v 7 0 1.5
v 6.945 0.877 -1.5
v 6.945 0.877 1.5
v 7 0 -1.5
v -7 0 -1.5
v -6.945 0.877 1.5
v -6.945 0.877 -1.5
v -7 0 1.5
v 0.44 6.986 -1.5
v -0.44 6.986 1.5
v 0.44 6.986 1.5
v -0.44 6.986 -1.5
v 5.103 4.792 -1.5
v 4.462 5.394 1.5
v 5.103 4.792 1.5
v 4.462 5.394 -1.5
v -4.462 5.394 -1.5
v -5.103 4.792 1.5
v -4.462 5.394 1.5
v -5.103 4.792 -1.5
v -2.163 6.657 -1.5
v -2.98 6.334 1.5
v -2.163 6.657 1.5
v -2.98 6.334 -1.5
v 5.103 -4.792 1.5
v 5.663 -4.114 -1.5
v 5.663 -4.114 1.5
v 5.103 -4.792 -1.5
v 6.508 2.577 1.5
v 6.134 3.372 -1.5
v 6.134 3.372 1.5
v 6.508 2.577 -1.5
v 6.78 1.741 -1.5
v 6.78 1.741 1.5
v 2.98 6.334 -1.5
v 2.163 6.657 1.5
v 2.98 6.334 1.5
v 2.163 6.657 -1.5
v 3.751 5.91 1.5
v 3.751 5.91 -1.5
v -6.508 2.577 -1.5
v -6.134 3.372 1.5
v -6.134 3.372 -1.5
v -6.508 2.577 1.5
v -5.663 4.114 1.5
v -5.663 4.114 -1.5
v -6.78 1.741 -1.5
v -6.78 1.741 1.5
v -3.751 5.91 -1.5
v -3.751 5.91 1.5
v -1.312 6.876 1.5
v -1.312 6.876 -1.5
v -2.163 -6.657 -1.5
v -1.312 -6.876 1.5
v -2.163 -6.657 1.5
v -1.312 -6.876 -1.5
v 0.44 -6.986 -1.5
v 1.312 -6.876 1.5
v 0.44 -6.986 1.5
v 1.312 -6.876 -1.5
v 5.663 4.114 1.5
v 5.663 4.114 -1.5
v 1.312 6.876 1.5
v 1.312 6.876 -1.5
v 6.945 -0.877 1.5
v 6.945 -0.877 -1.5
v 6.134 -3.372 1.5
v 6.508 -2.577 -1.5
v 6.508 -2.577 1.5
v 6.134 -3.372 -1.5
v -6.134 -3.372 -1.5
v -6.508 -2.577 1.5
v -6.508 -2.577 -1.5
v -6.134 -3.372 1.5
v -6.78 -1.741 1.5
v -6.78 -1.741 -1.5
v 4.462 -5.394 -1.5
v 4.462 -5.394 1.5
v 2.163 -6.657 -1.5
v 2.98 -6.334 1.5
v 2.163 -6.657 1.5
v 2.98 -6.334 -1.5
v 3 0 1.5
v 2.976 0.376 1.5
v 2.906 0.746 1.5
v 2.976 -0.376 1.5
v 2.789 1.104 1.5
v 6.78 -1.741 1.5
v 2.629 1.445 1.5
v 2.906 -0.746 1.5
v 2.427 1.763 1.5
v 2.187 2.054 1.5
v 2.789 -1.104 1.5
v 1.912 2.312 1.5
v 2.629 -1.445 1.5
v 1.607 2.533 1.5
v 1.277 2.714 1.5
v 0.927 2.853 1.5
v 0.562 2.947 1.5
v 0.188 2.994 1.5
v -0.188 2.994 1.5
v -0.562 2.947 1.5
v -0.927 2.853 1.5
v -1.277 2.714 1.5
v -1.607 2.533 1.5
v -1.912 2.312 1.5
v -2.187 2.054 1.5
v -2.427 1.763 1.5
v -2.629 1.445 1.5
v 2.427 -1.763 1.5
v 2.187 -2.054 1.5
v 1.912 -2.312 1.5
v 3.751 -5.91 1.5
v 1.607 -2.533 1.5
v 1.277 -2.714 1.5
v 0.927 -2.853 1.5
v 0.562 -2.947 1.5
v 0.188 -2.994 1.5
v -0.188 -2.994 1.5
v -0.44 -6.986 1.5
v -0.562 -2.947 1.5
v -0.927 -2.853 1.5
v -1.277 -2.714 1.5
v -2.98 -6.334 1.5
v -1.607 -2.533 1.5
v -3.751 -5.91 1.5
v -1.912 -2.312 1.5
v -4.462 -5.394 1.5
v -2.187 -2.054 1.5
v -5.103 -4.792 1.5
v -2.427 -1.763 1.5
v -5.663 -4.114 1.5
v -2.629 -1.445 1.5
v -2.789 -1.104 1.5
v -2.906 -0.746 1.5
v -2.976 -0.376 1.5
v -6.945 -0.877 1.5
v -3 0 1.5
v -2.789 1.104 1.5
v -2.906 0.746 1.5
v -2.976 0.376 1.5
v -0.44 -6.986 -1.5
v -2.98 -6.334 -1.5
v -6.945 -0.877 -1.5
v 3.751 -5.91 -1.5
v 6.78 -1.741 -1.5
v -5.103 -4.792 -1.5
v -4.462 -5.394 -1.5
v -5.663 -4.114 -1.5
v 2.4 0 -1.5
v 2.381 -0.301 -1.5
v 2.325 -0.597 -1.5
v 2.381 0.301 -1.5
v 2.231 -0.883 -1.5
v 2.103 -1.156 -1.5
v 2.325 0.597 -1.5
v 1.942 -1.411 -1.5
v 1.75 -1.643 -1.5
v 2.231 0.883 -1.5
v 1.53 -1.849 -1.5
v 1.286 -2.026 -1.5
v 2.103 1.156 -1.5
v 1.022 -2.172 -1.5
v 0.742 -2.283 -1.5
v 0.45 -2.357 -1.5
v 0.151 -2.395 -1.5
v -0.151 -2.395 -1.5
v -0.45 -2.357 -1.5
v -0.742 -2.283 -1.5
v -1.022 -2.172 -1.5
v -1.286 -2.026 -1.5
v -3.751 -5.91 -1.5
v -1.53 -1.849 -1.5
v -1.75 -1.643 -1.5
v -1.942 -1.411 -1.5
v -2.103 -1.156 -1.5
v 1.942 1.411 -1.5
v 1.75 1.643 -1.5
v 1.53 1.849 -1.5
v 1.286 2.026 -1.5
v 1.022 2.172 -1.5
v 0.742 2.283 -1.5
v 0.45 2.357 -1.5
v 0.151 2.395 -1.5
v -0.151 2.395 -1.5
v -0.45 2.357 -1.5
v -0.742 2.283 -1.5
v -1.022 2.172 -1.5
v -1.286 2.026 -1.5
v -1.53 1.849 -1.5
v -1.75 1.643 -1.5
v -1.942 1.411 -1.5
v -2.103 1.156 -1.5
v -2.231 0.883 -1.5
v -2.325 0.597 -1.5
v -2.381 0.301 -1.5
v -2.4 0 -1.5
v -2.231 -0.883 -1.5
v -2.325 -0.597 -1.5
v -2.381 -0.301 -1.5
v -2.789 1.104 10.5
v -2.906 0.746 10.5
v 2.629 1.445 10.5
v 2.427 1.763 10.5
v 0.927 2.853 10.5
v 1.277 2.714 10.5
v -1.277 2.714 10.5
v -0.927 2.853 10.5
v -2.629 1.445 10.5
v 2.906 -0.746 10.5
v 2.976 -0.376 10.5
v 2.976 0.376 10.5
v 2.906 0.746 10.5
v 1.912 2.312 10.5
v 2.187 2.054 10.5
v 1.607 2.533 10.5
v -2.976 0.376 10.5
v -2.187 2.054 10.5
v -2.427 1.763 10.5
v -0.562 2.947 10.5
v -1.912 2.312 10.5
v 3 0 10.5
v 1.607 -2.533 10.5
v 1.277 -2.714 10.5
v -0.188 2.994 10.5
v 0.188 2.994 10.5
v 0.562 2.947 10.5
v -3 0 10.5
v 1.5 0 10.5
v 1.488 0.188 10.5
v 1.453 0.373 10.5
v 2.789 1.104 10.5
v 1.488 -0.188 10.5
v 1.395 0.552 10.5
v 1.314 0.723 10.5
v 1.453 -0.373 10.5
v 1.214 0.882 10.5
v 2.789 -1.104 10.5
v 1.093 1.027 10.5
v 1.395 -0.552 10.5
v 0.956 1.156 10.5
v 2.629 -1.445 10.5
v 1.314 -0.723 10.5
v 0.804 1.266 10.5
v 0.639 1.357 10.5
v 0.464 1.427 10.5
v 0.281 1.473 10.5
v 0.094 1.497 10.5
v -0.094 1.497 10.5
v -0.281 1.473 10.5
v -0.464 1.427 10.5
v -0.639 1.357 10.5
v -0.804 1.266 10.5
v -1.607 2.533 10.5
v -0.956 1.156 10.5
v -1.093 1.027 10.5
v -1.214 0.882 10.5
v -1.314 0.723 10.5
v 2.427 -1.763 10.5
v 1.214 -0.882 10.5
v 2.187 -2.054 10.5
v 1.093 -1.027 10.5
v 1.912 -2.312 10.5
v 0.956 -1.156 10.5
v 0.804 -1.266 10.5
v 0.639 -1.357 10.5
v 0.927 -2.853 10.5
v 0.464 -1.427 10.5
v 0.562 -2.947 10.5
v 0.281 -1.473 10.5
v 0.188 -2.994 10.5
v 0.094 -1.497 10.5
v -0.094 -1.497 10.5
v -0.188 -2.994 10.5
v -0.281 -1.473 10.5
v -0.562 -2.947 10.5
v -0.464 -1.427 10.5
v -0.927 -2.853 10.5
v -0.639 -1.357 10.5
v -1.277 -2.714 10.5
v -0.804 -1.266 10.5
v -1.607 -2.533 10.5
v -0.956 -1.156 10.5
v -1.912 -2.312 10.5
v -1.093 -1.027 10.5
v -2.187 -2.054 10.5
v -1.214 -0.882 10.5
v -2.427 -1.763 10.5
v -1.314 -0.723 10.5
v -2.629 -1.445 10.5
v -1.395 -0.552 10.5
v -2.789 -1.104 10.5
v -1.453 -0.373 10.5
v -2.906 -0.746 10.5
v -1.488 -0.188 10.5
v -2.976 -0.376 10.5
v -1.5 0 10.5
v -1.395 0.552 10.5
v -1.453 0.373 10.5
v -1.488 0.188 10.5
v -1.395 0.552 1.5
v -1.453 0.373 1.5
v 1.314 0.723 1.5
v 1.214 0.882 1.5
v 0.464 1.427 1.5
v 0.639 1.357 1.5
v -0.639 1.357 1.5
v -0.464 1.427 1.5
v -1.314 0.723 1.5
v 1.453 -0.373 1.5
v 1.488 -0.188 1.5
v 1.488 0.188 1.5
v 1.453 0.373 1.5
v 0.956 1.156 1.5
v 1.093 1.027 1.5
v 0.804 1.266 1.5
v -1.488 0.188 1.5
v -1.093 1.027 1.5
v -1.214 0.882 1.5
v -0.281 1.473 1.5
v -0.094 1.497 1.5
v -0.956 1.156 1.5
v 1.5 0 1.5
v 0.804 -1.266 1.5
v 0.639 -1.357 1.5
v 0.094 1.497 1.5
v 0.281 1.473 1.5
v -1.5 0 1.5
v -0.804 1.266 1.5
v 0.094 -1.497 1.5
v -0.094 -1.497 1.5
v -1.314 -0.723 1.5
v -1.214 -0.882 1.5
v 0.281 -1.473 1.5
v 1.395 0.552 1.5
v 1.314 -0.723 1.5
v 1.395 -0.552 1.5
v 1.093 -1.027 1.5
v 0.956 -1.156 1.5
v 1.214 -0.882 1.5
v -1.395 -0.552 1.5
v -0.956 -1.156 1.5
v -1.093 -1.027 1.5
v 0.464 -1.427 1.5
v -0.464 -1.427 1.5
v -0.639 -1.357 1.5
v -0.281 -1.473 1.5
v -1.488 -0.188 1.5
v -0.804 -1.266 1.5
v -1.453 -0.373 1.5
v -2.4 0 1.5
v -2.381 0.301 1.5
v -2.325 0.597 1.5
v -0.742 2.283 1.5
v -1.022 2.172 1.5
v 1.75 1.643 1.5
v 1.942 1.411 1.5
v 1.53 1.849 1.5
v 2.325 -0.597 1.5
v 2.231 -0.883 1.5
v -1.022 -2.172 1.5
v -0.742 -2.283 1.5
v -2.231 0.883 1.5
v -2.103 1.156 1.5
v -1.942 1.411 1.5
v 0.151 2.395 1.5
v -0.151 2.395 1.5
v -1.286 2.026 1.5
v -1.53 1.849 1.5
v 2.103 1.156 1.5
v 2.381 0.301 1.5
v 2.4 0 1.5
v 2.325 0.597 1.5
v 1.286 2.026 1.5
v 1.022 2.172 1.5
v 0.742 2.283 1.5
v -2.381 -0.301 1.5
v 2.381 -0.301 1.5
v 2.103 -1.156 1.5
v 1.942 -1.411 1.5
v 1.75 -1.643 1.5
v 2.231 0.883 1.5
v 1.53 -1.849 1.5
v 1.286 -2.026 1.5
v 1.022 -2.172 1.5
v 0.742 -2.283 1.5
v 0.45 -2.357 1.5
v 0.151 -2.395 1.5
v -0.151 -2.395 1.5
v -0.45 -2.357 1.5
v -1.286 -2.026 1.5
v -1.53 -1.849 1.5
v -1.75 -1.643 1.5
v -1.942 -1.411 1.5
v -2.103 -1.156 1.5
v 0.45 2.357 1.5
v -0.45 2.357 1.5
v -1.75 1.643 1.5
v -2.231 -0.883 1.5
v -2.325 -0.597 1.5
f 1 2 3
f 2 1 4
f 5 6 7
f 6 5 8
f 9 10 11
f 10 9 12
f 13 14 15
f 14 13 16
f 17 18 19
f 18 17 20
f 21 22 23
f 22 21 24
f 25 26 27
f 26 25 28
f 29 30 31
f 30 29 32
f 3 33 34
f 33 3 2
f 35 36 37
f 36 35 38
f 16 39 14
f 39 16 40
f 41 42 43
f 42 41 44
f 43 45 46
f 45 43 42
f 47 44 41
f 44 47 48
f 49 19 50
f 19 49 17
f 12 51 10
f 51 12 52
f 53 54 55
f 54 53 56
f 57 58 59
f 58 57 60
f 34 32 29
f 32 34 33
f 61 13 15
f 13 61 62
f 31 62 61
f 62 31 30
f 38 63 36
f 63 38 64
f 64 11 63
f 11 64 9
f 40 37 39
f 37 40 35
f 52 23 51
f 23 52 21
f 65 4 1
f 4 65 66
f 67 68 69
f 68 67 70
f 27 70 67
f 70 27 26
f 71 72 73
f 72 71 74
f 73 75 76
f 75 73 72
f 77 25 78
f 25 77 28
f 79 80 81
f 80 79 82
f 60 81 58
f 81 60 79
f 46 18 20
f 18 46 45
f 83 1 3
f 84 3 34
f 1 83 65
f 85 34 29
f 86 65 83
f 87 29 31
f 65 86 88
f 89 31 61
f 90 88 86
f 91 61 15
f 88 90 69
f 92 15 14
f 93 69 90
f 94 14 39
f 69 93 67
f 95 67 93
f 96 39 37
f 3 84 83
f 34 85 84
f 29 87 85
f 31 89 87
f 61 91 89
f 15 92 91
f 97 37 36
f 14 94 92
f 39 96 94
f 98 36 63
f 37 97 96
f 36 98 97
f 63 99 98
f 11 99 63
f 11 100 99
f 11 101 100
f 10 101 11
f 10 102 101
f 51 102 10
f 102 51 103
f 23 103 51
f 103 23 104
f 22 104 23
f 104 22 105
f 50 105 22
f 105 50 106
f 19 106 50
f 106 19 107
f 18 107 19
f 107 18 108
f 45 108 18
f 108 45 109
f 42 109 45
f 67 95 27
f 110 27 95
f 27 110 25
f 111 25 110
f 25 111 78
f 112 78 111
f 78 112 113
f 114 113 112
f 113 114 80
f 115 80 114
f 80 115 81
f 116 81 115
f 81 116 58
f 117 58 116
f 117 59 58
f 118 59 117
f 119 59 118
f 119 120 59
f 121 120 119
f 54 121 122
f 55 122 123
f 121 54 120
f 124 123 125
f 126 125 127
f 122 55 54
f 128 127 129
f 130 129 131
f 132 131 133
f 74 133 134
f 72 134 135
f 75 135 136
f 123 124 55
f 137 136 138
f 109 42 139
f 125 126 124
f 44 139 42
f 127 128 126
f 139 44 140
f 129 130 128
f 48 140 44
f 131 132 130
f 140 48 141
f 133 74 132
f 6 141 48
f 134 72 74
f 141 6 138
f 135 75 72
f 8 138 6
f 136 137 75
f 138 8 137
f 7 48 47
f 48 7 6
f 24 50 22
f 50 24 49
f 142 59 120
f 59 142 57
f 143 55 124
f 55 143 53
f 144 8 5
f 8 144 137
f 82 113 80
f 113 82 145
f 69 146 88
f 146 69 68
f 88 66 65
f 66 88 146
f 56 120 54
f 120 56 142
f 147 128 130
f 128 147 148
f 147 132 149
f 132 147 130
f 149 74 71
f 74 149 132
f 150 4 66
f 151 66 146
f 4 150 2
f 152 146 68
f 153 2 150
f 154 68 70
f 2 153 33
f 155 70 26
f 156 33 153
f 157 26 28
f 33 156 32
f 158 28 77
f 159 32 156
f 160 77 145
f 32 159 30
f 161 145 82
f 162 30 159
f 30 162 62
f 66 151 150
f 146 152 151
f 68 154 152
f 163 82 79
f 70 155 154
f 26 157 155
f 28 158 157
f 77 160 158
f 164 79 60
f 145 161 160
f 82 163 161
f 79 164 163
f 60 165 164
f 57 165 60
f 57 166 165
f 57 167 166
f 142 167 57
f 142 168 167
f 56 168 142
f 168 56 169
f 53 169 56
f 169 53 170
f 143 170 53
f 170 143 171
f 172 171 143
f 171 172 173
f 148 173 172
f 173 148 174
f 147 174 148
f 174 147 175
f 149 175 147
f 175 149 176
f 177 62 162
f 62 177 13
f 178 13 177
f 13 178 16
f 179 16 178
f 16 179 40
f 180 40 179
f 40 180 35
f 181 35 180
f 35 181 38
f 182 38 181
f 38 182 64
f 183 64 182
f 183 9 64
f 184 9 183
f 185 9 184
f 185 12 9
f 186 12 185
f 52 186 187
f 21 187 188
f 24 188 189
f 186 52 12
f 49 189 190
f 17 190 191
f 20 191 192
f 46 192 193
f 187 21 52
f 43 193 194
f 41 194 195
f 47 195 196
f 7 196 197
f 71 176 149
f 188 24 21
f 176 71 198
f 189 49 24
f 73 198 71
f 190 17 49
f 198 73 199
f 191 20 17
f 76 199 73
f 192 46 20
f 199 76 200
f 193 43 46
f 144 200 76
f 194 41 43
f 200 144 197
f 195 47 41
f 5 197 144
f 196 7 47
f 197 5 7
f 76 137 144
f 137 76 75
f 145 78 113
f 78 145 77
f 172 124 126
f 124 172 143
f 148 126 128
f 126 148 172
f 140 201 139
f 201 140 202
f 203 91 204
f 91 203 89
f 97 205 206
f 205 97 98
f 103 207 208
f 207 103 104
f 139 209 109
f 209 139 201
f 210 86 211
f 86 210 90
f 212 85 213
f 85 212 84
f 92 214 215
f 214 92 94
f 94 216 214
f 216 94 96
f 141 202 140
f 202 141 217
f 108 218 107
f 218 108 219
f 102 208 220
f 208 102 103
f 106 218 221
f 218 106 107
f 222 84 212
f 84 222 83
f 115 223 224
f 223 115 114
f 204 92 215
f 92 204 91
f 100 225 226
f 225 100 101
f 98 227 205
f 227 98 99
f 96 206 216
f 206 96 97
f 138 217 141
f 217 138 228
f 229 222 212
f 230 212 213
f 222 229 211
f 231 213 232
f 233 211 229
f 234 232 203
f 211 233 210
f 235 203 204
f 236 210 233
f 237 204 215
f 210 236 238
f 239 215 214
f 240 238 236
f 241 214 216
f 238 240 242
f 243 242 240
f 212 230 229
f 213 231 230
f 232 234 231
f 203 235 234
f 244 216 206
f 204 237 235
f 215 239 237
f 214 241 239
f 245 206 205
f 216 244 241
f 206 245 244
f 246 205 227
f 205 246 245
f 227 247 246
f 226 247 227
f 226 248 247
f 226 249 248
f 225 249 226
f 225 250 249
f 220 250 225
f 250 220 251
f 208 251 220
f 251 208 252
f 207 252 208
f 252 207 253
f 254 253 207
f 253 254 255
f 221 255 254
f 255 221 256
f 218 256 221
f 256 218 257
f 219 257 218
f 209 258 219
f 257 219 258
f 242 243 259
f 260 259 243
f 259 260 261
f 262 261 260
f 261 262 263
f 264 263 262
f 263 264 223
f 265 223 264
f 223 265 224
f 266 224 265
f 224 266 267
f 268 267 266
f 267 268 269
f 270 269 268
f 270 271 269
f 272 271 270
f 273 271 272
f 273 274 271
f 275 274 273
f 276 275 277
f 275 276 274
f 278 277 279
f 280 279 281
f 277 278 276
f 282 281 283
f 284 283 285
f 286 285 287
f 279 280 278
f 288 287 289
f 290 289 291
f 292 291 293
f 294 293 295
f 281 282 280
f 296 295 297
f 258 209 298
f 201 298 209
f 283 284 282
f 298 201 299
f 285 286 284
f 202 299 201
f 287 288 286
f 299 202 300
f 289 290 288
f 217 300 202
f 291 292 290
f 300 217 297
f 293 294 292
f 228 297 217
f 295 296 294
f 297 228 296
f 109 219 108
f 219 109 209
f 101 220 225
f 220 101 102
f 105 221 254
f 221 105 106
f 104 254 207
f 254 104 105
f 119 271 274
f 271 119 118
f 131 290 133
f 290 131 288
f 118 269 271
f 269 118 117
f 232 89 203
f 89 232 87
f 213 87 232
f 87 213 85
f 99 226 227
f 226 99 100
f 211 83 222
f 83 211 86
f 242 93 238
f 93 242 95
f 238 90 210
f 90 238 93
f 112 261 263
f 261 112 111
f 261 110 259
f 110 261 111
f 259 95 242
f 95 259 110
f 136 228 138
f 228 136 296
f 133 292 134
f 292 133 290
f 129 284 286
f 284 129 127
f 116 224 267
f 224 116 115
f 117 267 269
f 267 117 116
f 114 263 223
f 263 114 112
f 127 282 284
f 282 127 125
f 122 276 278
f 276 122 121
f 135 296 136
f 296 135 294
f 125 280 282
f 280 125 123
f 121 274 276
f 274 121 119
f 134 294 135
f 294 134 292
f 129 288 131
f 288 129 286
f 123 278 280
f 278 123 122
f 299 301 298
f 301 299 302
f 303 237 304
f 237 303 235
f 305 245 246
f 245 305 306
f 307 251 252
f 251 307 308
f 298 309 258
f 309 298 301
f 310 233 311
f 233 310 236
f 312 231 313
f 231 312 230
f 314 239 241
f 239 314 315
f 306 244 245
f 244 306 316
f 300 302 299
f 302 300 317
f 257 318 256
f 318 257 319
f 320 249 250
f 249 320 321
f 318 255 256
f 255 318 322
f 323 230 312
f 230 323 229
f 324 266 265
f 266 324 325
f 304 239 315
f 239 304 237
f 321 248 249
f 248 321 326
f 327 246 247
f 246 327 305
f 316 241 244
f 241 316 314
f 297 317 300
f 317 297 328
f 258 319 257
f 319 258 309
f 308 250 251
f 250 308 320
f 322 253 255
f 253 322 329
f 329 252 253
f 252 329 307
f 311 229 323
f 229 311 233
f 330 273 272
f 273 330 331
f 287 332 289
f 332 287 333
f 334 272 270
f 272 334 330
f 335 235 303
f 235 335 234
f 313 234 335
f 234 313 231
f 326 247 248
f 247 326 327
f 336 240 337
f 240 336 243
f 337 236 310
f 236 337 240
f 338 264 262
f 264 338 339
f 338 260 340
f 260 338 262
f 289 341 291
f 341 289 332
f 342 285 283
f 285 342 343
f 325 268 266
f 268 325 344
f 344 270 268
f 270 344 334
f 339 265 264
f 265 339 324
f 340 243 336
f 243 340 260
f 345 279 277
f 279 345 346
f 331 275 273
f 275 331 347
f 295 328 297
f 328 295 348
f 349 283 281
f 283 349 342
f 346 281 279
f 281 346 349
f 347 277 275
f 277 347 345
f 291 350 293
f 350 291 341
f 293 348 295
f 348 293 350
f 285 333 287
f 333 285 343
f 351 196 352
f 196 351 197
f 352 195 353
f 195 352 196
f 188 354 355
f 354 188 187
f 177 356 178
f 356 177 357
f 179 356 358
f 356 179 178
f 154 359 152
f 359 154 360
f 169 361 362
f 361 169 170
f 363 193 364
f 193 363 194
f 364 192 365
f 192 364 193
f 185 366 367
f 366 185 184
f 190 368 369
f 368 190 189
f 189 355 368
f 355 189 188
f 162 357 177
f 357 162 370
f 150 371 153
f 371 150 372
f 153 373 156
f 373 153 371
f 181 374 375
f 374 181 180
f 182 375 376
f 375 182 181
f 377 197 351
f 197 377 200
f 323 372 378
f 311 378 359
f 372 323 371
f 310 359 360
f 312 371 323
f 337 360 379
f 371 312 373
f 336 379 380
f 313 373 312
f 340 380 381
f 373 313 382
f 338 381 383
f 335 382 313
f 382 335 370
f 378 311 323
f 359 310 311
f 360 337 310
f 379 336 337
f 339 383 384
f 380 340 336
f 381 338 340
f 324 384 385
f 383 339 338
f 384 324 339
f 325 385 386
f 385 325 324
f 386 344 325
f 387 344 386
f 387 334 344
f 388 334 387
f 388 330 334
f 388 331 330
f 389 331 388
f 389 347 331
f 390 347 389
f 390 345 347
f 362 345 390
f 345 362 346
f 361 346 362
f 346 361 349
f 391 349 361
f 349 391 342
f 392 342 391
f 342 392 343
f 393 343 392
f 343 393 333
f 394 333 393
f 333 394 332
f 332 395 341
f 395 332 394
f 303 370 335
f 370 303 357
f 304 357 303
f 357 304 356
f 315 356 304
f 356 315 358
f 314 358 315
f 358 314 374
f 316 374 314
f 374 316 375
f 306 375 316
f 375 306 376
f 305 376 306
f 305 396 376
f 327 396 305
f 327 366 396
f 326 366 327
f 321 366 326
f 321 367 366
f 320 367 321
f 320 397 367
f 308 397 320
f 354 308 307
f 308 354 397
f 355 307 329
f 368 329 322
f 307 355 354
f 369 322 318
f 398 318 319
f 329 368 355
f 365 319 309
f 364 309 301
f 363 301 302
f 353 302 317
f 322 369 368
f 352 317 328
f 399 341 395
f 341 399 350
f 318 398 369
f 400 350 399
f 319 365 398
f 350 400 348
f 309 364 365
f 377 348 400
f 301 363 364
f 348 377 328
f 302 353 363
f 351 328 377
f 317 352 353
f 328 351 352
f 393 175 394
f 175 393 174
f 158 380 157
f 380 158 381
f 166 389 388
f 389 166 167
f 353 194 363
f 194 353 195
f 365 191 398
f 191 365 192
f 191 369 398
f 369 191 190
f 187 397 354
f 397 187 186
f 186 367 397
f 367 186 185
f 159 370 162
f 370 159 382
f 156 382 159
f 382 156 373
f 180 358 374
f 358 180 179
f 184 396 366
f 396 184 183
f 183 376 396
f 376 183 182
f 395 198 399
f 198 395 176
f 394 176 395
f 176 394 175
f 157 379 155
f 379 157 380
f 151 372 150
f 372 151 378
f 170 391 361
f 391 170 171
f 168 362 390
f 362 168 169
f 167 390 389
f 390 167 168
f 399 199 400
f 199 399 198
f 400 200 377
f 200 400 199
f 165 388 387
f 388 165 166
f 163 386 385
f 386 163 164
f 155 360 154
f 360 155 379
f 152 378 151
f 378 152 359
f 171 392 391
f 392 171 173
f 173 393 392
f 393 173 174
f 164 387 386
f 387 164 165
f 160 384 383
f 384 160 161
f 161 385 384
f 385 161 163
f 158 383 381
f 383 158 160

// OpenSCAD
$fn = 50;


difference() {
	union() {
		translate(v = [0, 0, -1.5000000000]) {
			rotate(a = [0, 0, 0]) {
				cylinder(h = 3, r = 7.0000000000);
			}
		}
		translate(v = [0, 0, -1.5000000000]) {
			rotate(a = [0, 0, 0]) {
				cylinder(h = 12, r = 3.0000000000);
			}
		}
	}
	union() {
		translate(v = [0, 0, -125.0000000000]) {
			rotate(a = [0, 0, 0]) {
				cylinder(h = 250, r = 1.5000000000);
			}
		}
		#translate(v = [0, 0, 1.5000000000]) {
			rotate(a = [0, 180, 0]) {
				cylinder(h = 3, r1 = 2.4000000000, r2 = 2.4000000000);
			}
		}
		#translate(v = [0, 0, 10.5000000000]) {
			rotate(a = [0, 180, 0]) {
				cylinder(h = 12, r = 1.5000000000);
			}
		}
	}
}
